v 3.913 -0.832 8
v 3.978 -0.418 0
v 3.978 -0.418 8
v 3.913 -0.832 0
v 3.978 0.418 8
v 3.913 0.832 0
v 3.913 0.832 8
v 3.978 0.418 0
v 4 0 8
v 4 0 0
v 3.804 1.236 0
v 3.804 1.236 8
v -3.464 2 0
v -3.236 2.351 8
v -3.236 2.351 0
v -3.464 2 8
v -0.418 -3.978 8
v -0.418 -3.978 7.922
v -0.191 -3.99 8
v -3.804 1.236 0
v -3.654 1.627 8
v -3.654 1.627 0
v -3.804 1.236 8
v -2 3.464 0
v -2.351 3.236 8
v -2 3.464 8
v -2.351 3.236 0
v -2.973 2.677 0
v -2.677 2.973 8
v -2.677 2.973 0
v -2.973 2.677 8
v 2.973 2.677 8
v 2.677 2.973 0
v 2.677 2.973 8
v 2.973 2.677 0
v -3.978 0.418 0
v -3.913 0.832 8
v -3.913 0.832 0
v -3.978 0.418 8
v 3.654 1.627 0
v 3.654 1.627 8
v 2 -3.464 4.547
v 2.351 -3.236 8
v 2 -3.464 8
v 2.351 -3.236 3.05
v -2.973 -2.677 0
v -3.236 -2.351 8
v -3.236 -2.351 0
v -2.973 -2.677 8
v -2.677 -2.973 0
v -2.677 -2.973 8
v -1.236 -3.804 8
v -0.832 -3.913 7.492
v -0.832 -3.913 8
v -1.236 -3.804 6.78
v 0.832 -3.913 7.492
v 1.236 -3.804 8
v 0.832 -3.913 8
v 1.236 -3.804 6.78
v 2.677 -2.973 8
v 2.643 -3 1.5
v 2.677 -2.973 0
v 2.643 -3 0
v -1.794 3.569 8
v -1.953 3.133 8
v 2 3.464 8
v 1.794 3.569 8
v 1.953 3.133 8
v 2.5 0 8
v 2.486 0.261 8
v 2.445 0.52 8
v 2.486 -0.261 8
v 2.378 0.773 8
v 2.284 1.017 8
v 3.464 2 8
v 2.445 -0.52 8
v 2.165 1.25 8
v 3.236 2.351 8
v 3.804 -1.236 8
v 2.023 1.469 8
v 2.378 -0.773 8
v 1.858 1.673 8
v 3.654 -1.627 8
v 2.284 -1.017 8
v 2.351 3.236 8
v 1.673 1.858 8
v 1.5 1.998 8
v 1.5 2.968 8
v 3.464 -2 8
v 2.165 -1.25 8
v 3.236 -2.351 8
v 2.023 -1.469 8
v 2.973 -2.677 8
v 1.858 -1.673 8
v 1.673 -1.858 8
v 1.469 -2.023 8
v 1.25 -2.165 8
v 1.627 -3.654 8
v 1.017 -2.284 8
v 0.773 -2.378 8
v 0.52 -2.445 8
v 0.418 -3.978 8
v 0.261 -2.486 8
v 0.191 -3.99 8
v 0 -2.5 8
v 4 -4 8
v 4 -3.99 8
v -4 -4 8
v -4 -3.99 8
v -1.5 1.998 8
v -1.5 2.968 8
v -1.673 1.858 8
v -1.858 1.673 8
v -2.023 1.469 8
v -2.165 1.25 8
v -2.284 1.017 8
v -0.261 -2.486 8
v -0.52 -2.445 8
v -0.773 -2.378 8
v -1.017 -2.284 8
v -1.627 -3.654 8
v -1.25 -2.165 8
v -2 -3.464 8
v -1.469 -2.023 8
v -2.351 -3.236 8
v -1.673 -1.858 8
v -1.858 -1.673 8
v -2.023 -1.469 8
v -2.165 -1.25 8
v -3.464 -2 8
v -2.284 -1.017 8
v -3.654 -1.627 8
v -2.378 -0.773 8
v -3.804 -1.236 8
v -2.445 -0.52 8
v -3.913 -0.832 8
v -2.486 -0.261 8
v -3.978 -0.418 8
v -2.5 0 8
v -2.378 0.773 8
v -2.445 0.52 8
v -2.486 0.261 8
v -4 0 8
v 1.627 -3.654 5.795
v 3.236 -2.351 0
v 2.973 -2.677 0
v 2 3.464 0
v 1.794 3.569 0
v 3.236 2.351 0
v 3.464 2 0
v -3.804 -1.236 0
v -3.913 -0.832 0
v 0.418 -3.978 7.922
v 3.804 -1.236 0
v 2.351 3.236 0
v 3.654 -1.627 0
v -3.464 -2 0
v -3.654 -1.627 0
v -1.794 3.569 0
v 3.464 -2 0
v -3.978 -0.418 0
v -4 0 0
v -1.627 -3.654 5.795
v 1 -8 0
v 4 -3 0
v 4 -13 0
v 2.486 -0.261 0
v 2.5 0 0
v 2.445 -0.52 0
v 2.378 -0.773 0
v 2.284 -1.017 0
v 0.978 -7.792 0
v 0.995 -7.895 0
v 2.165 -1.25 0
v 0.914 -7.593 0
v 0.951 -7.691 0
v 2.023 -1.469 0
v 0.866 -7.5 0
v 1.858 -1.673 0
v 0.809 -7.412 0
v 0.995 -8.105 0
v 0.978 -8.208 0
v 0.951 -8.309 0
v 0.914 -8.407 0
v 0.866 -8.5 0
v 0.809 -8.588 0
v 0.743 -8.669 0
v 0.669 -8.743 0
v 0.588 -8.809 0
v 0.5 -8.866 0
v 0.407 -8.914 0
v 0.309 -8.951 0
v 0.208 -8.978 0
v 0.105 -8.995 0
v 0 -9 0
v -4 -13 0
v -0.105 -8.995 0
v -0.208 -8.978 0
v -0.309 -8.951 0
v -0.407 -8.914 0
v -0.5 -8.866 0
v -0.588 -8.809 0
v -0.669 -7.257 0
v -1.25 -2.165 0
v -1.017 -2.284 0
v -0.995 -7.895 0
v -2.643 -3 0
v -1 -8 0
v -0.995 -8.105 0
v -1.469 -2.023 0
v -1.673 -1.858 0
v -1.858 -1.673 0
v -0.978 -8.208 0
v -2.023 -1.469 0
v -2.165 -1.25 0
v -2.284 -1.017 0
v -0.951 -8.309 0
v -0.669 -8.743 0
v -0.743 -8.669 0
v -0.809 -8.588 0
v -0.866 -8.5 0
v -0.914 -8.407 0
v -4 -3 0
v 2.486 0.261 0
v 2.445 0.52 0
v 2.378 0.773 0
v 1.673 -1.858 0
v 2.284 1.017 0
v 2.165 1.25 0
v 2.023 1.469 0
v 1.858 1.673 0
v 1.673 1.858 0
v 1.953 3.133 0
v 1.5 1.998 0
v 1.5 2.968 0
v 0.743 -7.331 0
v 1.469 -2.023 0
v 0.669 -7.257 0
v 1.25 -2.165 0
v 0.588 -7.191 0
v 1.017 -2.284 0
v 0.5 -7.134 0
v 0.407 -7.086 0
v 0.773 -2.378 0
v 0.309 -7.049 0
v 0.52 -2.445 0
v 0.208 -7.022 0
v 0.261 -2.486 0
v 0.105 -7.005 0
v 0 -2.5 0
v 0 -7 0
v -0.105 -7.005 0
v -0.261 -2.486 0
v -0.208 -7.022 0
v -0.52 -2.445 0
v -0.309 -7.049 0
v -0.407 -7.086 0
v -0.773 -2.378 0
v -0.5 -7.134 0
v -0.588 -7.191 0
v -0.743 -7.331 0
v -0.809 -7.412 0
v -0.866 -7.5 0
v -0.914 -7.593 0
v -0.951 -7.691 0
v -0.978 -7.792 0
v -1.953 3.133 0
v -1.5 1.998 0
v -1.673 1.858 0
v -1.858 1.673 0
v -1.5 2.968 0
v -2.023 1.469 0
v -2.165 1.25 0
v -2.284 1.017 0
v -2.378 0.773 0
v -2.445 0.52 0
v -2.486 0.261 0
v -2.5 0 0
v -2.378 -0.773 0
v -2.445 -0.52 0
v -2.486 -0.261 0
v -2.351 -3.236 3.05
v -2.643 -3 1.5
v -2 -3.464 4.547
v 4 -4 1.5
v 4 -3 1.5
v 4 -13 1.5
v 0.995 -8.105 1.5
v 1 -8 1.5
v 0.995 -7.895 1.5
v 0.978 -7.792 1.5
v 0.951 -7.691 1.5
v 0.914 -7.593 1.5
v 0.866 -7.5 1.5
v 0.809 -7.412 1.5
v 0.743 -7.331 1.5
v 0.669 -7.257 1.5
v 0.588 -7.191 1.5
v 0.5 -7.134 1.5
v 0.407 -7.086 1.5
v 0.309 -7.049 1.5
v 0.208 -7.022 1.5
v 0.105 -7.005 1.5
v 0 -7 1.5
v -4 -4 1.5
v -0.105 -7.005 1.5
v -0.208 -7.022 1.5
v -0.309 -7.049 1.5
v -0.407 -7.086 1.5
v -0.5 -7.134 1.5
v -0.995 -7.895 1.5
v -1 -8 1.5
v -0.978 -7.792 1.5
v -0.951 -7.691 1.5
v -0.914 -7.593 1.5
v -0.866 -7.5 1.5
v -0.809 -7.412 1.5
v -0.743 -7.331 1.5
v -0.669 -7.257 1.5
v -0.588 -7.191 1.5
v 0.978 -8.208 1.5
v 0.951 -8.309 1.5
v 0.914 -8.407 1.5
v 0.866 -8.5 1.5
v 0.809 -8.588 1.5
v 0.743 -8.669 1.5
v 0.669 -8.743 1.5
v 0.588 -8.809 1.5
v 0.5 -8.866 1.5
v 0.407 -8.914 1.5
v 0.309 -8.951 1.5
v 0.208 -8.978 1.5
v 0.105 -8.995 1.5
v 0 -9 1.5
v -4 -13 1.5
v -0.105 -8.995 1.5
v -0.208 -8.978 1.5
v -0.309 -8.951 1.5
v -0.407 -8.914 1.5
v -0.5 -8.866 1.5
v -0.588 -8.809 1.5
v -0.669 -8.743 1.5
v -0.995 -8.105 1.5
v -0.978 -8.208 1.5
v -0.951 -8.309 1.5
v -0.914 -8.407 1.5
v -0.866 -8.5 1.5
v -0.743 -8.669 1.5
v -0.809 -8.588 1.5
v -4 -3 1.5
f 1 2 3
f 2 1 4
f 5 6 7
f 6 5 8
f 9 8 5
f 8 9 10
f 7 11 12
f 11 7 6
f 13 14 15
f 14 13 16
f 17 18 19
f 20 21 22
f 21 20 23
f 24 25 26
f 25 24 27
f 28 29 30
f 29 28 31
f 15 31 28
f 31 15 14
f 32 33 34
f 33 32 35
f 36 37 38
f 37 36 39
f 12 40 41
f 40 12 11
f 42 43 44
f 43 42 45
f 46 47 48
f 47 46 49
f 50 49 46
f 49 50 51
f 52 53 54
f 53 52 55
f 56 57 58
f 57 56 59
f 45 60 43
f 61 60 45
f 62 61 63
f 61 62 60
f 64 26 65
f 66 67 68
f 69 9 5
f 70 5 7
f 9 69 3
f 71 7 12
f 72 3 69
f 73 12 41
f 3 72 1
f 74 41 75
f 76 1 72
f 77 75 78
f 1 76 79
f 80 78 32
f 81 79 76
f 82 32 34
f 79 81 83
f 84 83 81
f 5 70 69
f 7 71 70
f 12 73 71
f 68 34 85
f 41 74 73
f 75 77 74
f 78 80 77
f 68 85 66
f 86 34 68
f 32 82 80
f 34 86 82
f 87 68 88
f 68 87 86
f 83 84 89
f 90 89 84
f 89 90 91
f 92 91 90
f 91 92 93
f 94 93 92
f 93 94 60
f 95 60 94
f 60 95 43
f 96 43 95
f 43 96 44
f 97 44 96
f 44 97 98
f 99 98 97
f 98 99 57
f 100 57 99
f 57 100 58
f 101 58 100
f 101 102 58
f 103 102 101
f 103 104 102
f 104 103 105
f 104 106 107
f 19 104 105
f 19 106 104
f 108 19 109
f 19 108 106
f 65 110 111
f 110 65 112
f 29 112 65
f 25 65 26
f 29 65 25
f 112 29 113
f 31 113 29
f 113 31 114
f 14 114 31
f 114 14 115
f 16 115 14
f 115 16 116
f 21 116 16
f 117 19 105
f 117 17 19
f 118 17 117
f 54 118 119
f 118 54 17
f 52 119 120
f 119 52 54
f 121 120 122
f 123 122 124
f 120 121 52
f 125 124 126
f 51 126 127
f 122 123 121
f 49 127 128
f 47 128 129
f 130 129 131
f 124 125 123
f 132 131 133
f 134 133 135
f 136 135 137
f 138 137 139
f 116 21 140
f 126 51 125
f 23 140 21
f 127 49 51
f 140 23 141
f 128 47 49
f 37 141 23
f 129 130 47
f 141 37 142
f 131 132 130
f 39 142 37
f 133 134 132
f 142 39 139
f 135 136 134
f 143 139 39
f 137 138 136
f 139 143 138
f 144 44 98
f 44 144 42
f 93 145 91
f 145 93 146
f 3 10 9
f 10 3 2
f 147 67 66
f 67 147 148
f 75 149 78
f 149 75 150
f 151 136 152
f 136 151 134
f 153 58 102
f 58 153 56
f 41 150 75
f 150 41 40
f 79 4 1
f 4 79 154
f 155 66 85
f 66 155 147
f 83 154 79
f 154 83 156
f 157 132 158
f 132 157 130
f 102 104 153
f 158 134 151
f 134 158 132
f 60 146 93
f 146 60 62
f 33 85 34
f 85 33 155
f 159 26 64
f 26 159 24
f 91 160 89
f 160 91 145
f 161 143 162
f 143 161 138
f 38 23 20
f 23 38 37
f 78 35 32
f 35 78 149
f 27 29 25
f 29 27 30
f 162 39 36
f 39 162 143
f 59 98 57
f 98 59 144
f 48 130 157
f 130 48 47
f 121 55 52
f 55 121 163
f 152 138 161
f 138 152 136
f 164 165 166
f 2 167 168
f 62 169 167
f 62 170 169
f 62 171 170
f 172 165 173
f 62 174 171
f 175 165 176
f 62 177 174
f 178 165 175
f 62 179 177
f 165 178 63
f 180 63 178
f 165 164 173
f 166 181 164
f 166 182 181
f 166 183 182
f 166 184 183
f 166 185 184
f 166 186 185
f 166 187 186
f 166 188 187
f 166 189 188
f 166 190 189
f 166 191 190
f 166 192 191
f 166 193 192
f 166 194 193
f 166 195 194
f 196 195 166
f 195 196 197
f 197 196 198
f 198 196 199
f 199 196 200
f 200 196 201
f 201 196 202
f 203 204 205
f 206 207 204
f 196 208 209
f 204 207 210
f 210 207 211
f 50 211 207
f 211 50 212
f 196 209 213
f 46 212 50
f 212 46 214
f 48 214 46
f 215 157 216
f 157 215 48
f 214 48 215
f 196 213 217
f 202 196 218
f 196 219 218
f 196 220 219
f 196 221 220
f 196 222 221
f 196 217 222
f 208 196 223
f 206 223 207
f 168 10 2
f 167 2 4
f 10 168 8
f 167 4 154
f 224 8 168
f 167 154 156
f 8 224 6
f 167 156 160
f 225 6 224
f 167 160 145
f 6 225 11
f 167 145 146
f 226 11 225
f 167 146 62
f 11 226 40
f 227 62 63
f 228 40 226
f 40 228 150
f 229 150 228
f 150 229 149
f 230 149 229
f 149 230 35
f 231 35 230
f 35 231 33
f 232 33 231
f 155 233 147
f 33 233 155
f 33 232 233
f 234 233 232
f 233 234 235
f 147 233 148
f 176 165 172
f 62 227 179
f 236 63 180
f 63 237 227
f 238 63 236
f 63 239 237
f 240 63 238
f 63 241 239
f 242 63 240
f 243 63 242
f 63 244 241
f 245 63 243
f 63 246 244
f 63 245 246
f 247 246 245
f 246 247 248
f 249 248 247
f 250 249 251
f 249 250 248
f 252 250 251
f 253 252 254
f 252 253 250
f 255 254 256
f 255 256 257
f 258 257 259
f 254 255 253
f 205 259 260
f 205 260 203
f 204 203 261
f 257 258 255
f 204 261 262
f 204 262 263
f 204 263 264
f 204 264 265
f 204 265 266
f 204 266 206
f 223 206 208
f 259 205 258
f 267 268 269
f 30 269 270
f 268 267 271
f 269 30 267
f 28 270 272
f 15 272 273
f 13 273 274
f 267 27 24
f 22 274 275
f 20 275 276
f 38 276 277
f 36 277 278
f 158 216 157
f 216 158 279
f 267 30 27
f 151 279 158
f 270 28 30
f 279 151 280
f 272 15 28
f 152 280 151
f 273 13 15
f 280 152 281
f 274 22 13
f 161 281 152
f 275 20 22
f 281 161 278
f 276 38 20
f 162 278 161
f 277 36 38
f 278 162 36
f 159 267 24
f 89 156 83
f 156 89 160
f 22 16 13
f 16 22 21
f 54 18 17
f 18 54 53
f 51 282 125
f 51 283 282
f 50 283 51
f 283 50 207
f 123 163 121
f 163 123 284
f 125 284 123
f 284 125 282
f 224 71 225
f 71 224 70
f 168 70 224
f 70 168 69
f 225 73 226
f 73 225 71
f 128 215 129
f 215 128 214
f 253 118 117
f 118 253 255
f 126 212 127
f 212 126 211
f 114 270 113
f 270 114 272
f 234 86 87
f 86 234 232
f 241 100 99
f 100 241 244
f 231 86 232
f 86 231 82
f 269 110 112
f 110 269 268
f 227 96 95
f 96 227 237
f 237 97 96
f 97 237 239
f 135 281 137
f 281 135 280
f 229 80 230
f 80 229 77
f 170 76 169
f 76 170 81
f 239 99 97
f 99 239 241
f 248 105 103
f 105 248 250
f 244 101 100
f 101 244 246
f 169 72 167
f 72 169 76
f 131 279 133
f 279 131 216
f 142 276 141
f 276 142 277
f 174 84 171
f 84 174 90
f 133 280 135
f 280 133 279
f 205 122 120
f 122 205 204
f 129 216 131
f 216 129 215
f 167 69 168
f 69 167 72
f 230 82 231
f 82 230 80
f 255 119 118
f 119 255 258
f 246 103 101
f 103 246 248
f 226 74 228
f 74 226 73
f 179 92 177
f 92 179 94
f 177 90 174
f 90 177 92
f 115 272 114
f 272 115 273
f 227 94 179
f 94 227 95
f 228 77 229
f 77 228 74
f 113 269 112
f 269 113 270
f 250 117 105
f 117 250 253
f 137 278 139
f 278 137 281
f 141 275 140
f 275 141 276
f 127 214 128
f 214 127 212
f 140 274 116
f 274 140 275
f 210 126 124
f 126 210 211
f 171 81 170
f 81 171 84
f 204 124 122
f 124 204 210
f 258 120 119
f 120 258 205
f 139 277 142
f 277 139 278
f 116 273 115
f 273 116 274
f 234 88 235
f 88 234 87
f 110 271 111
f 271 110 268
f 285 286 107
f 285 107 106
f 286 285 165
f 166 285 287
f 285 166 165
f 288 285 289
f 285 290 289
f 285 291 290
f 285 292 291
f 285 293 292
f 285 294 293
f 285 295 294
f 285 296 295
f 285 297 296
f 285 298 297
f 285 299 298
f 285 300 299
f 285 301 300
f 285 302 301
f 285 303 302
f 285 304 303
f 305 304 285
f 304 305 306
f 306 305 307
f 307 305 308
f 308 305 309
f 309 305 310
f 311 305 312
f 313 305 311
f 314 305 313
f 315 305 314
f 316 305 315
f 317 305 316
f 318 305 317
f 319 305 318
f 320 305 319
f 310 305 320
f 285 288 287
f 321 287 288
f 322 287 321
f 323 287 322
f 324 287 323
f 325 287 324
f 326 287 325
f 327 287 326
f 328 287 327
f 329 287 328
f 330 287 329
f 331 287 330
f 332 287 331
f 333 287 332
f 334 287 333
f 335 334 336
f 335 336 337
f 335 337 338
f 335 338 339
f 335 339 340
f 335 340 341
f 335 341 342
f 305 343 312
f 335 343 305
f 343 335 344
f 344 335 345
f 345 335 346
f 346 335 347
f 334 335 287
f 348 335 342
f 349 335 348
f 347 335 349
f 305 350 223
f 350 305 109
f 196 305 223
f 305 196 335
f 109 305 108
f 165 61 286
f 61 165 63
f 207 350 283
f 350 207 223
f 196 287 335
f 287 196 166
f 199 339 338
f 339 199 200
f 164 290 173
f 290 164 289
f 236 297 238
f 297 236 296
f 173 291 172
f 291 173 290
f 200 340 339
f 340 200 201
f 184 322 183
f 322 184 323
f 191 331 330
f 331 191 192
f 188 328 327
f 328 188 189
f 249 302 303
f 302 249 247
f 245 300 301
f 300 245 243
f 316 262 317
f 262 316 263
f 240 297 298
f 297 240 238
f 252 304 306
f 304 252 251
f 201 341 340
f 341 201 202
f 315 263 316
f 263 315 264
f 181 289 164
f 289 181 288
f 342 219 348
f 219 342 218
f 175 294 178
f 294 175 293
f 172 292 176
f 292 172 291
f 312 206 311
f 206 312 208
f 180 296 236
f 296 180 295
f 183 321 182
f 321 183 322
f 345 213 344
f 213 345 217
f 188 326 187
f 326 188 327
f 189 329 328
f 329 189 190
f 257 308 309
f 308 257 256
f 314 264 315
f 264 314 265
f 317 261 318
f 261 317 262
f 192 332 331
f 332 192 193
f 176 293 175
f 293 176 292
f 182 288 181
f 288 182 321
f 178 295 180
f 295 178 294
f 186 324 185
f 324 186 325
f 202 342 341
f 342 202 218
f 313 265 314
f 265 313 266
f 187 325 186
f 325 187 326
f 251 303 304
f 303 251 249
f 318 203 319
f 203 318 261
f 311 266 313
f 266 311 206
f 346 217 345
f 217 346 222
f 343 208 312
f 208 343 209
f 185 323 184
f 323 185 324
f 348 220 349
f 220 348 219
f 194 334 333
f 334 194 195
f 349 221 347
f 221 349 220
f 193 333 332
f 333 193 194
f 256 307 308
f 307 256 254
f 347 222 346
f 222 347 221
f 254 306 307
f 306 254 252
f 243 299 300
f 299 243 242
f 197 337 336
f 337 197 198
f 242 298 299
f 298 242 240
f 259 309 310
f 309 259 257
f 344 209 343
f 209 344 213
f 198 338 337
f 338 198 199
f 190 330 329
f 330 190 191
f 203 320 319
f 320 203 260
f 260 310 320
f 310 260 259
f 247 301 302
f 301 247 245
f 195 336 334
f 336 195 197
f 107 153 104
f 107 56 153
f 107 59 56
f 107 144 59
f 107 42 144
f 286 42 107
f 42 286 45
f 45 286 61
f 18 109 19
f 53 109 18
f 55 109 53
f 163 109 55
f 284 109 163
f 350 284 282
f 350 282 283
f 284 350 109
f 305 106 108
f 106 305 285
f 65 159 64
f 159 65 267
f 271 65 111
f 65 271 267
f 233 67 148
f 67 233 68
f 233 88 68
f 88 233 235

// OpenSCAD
// ============================================================
// ImpactGuard Cable Routing Clip
// C-shaped clip to secure EEG cable inside boxing helmet
// Print 4-5 of these along the cable route
// ============================================================

// --- Clip dimensions ---
cable_id        = 5.0;      // inner diameter (fits standard mic cable)
clip_wall       = 1.5;      // wall thickness around cable
clip_od         = cable_id + 2 * clip_wall;  // outer diameter
clip_width      = 8.0;      // width/length of clip along cable axis
gap_width       = 3.0;      // opening gap for cable snap-in

// --- Mounting tab ---
tab_length      = 10.0;     // extends from clip body
tab_width       = 8.0;      // same as clip width
tab_thick       = 1.5;      // tab thickness
tab_hole_dia    = 2.0;      // sewing hole diameter

// --- Print settings ---
$fn             = 60;

// ============================================================
// C-shaped clip body
// A cylinder with a gap cut for cable insertion.
// Cable snaps in through the 3mm gap and is held by the
// surrounding C-shape.
// ============================================================
module clip_body() {
    difference() {
        // Outer cylinder
        cylinder(d = clip_od, h = clip_width);

        // Inner bore — cable sits here
        translate([0, 0, -0.01])
            cylinder(d = cable_id, h = clip_width + 0.02);

        // Gap opening — cable snaps in through here
        // Gap is on the +Y side (away from mounting tab)
        translate([-gap_width/2, 0, -0.01])
            cube([gap_width, clip_od, clip_width + 0.02]);
    }
}

// ============================================================
// Clip entry guides — small chamfers at the gap opening to
// help the cable slide in during installation
// ============================================================
module entry_guides() {
    // Small angled surfaces at the gap edges
    guide_len = 1.0;
    for (side = [-1, 1]) {
        translate([side * gap_width/2, clip_od/2 - 0.5, 0]) {
            rotate([0, 0, side * 20])
                translate([-0.3, -0.5, 0])
                    cube([0.6, 1.5, clip_width]);
        }
    }
}

// ============================================================
// Flat mounting tab — extends from the clip body for
// attachment to helmet padding via sewing or zip-tie.
// The hole allows a needle/thread or thin zip-tie to pass
// through for secure mounting.
// ============================================================
module mounting_tab() {
    // Tab extends from the bottom of the clip (-Y direction,
    // opposite the gap opening)
    translate([-tab_width/2, -clip_od/2 - tab_length + 1, 0]) {
        difference() {
            // Flat tab
            cube([tab_width, tab_length, tab_thick]);

            // Sewing hole centered on tab
            translate([tab_width/2, tab_length/2, -0.01])
                cylinder(d = tab_hole_dia, h = tab_thick + 0.02);
        }
    }
}

// ============================================================
// Transition fillet — smooth connection between clip and tab
// Prevents stress concentration at the joint
// ============================================================
module clip_tab_bridge() {
    // Small triangular support between clip body and tab
    translate([-tab_width/2, -clip_od/2, 0]) {
        hull() {
            cube([tab_width, 0.01, clip_width]);
            translate([0, 0, 0])
                cube([tab_width, 1, tab_thick]);
        }
    }
}

// ============================================================
// Full cable clip assembly
// ============================================================
module cable_clip() {
    difference() {
        union() {
            clip_body();
            mounting_tab();
            clip_tab_bridge();
        }

        // Re-cut the entry guide chamfers from the gap
        entry_guides();
    }
}

// ============================================================
// Render — single clip
// (For printing, arrange 4-5 on build plate in slicer)
// ============================================================
cable_clip();
